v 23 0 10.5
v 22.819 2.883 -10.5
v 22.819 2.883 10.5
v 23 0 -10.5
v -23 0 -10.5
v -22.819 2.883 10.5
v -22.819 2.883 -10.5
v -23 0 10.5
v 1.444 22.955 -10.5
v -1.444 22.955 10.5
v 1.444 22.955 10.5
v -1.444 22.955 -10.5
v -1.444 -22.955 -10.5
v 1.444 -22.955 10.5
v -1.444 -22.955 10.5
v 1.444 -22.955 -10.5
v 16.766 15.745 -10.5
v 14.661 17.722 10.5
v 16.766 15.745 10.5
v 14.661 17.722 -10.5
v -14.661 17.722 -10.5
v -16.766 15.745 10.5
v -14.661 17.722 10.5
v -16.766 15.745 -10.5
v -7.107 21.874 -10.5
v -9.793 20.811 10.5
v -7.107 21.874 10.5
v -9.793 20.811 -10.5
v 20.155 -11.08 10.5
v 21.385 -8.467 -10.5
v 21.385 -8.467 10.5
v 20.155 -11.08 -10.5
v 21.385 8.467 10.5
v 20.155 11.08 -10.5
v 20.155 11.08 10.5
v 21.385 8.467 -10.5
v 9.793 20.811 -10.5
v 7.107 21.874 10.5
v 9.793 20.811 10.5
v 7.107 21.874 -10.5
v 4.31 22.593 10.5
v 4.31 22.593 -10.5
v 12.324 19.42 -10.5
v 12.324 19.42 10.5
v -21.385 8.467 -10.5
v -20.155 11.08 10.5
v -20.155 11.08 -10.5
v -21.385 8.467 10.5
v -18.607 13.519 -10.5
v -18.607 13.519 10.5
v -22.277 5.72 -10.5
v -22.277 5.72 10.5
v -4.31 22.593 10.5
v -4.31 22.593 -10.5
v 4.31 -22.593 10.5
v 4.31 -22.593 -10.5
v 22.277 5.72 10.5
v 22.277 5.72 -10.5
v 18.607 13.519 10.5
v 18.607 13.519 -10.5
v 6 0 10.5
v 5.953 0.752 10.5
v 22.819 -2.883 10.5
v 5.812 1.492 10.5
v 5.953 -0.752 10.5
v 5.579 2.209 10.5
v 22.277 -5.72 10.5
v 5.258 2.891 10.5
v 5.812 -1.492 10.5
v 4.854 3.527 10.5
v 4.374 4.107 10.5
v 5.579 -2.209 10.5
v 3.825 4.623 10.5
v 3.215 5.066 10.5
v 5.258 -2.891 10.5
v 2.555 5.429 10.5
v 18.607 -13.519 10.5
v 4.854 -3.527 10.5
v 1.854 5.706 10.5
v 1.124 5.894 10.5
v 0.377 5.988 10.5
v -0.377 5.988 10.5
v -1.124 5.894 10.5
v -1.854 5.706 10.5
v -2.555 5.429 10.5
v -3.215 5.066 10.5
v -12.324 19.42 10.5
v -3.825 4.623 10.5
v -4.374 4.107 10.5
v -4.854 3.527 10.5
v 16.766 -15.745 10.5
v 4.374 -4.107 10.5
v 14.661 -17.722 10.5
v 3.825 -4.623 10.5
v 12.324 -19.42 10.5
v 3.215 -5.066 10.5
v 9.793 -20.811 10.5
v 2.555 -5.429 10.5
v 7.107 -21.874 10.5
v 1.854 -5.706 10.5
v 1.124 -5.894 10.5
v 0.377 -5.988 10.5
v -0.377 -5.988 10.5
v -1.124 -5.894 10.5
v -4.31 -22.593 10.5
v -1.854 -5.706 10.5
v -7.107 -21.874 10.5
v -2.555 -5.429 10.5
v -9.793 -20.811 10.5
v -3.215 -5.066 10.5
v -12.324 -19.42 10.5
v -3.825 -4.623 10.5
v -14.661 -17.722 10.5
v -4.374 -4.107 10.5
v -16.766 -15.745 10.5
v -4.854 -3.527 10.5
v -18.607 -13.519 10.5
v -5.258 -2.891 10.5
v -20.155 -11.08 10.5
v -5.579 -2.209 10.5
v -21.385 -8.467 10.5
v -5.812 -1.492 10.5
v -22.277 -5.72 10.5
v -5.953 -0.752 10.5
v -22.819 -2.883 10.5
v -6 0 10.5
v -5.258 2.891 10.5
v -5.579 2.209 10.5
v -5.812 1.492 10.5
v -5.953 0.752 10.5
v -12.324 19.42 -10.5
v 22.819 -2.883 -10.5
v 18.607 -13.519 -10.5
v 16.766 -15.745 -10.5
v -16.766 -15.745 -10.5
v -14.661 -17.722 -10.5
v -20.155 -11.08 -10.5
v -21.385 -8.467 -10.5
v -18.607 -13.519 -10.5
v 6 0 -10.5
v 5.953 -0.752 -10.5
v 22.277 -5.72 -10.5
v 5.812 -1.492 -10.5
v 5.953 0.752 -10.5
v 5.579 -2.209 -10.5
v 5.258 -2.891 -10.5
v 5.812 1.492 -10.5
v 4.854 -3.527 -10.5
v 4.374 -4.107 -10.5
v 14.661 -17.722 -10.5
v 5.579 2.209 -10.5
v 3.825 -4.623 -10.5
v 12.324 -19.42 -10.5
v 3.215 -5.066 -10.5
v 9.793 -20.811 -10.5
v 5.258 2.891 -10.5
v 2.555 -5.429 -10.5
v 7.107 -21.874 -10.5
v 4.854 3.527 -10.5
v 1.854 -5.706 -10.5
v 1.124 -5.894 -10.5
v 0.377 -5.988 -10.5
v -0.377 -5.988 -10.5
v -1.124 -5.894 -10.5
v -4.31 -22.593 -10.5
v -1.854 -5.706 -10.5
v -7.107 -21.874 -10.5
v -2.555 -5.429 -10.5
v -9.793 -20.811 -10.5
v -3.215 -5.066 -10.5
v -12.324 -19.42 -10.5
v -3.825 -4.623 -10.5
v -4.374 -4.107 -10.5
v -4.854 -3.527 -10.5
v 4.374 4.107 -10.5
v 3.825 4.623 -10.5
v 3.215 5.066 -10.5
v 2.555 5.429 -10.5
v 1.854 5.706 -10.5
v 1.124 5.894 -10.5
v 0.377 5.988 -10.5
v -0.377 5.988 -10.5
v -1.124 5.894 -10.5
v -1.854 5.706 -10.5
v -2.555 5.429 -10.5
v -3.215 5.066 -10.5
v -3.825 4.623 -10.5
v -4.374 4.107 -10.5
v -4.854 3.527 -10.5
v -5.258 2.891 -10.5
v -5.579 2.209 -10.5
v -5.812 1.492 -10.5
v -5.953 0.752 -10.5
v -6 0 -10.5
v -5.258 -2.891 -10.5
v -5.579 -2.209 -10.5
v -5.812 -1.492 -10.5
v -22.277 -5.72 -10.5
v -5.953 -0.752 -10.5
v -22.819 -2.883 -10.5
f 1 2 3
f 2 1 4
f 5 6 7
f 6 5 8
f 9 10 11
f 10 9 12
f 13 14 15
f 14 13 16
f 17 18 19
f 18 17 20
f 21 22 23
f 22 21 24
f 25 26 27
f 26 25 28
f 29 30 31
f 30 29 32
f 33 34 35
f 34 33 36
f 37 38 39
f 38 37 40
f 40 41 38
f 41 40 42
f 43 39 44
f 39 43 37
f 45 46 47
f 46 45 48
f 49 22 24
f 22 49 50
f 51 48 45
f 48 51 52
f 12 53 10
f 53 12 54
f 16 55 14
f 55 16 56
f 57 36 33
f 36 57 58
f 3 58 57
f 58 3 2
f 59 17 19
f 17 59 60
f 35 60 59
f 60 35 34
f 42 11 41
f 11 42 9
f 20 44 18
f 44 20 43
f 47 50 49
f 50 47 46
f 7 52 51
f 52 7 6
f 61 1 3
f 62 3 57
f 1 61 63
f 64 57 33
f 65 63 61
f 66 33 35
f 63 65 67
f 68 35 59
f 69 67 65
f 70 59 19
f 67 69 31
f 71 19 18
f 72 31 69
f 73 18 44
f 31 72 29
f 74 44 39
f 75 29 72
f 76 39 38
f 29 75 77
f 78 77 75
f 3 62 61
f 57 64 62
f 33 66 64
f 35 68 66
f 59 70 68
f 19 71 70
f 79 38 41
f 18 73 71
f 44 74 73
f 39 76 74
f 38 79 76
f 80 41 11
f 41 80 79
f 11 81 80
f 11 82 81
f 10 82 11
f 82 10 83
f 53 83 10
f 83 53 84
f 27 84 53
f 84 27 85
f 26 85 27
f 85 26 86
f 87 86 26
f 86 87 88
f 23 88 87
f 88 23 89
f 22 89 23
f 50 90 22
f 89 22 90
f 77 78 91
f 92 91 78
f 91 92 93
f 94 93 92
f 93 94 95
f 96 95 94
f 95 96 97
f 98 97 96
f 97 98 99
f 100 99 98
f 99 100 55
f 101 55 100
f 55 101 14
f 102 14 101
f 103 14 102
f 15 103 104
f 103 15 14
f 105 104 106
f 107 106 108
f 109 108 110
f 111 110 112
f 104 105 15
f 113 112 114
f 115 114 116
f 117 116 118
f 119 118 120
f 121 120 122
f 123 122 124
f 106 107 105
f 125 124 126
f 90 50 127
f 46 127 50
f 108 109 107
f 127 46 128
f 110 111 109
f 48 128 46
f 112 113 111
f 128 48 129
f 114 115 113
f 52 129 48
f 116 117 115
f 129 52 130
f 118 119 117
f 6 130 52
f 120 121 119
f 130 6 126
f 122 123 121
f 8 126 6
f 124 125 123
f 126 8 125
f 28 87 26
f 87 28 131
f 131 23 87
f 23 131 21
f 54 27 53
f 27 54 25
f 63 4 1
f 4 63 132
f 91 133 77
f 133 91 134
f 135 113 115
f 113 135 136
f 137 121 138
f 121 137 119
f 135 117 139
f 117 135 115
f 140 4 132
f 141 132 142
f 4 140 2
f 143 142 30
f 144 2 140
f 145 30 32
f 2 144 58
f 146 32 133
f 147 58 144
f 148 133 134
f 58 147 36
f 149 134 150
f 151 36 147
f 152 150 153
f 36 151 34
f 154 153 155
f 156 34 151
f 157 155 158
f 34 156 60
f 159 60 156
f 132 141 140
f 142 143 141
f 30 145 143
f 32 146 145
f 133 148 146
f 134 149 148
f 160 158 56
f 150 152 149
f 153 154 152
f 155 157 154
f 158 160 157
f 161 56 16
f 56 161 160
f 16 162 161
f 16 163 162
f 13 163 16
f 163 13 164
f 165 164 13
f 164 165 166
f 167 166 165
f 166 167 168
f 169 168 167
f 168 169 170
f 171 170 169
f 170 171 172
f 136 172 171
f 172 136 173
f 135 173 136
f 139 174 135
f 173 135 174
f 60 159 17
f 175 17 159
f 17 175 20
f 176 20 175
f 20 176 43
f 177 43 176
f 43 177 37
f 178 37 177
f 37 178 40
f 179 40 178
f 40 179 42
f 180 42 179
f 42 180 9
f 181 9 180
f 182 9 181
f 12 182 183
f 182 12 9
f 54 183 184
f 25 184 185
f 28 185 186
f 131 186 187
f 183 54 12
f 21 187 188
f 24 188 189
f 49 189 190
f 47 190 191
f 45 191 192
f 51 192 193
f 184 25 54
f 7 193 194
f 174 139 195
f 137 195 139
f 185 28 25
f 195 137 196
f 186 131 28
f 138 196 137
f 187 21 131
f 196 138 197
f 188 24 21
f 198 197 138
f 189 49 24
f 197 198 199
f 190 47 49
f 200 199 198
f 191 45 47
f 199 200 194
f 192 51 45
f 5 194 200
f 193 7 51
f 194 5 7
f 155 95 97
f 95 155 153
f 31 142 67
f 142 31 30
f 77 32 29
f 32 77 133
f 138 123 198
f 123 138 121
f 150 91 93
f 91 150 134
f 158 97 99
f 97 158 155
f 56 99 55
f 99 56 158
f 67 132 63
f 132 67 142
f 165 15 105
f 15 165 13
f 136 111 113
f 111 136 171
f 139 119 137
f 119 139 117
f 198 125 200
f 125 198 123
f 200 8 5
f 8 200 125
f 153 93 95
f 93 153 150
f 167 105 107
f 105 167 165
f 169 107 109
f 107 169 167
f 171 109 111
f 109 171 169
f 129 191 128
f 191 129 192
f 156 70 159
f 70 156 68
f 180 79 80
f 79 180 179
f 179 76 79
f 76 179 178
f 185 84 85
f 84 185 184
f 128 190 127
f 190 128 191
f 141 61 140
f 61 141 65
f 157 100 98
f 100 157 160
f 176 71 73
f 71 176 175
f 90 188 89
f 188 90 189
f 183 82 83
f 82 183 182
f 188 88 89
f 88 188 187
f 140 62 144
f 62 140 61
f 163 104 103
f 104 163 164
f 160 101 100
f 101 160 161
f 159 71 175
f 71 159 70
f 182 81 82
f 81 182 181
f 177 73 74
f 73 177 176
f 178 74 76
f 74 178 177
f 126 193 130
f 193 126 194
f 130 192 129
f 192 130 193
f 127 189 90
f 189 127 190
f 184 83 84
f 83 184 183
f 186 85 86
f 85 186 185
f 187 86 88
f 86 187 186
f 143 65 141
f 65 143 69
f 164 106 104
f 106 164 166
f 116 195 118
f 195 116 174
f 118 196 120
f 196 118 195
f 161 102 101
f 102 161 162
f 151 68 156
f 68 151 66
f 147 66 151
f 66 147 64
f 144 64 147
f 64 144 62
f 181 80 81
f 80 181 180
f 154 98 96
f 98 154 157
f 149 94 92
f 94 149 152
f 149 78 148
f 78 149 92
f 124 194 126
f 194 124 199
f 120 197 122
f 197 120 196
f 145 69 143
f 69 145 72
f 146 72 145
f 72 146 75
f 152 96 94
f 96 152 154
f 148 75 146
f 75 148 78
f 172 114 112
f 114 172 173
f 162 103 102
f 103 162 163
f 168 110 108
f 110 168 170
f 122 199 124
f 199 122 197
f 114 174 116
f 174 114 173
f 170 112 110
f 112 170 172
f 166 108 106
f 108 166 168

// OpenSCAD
$fn = 50;


difference() {
	union() {
		translate(v = [0, 0, -10.5000000000]) {
			cylinder(h = 21, r = 23.0000000000);
		}
	}
	union() {
		translate(v = [0, 0, -100.0000000000]) {
			cylinder(h = 200, r = 6);
		}
	}
}
